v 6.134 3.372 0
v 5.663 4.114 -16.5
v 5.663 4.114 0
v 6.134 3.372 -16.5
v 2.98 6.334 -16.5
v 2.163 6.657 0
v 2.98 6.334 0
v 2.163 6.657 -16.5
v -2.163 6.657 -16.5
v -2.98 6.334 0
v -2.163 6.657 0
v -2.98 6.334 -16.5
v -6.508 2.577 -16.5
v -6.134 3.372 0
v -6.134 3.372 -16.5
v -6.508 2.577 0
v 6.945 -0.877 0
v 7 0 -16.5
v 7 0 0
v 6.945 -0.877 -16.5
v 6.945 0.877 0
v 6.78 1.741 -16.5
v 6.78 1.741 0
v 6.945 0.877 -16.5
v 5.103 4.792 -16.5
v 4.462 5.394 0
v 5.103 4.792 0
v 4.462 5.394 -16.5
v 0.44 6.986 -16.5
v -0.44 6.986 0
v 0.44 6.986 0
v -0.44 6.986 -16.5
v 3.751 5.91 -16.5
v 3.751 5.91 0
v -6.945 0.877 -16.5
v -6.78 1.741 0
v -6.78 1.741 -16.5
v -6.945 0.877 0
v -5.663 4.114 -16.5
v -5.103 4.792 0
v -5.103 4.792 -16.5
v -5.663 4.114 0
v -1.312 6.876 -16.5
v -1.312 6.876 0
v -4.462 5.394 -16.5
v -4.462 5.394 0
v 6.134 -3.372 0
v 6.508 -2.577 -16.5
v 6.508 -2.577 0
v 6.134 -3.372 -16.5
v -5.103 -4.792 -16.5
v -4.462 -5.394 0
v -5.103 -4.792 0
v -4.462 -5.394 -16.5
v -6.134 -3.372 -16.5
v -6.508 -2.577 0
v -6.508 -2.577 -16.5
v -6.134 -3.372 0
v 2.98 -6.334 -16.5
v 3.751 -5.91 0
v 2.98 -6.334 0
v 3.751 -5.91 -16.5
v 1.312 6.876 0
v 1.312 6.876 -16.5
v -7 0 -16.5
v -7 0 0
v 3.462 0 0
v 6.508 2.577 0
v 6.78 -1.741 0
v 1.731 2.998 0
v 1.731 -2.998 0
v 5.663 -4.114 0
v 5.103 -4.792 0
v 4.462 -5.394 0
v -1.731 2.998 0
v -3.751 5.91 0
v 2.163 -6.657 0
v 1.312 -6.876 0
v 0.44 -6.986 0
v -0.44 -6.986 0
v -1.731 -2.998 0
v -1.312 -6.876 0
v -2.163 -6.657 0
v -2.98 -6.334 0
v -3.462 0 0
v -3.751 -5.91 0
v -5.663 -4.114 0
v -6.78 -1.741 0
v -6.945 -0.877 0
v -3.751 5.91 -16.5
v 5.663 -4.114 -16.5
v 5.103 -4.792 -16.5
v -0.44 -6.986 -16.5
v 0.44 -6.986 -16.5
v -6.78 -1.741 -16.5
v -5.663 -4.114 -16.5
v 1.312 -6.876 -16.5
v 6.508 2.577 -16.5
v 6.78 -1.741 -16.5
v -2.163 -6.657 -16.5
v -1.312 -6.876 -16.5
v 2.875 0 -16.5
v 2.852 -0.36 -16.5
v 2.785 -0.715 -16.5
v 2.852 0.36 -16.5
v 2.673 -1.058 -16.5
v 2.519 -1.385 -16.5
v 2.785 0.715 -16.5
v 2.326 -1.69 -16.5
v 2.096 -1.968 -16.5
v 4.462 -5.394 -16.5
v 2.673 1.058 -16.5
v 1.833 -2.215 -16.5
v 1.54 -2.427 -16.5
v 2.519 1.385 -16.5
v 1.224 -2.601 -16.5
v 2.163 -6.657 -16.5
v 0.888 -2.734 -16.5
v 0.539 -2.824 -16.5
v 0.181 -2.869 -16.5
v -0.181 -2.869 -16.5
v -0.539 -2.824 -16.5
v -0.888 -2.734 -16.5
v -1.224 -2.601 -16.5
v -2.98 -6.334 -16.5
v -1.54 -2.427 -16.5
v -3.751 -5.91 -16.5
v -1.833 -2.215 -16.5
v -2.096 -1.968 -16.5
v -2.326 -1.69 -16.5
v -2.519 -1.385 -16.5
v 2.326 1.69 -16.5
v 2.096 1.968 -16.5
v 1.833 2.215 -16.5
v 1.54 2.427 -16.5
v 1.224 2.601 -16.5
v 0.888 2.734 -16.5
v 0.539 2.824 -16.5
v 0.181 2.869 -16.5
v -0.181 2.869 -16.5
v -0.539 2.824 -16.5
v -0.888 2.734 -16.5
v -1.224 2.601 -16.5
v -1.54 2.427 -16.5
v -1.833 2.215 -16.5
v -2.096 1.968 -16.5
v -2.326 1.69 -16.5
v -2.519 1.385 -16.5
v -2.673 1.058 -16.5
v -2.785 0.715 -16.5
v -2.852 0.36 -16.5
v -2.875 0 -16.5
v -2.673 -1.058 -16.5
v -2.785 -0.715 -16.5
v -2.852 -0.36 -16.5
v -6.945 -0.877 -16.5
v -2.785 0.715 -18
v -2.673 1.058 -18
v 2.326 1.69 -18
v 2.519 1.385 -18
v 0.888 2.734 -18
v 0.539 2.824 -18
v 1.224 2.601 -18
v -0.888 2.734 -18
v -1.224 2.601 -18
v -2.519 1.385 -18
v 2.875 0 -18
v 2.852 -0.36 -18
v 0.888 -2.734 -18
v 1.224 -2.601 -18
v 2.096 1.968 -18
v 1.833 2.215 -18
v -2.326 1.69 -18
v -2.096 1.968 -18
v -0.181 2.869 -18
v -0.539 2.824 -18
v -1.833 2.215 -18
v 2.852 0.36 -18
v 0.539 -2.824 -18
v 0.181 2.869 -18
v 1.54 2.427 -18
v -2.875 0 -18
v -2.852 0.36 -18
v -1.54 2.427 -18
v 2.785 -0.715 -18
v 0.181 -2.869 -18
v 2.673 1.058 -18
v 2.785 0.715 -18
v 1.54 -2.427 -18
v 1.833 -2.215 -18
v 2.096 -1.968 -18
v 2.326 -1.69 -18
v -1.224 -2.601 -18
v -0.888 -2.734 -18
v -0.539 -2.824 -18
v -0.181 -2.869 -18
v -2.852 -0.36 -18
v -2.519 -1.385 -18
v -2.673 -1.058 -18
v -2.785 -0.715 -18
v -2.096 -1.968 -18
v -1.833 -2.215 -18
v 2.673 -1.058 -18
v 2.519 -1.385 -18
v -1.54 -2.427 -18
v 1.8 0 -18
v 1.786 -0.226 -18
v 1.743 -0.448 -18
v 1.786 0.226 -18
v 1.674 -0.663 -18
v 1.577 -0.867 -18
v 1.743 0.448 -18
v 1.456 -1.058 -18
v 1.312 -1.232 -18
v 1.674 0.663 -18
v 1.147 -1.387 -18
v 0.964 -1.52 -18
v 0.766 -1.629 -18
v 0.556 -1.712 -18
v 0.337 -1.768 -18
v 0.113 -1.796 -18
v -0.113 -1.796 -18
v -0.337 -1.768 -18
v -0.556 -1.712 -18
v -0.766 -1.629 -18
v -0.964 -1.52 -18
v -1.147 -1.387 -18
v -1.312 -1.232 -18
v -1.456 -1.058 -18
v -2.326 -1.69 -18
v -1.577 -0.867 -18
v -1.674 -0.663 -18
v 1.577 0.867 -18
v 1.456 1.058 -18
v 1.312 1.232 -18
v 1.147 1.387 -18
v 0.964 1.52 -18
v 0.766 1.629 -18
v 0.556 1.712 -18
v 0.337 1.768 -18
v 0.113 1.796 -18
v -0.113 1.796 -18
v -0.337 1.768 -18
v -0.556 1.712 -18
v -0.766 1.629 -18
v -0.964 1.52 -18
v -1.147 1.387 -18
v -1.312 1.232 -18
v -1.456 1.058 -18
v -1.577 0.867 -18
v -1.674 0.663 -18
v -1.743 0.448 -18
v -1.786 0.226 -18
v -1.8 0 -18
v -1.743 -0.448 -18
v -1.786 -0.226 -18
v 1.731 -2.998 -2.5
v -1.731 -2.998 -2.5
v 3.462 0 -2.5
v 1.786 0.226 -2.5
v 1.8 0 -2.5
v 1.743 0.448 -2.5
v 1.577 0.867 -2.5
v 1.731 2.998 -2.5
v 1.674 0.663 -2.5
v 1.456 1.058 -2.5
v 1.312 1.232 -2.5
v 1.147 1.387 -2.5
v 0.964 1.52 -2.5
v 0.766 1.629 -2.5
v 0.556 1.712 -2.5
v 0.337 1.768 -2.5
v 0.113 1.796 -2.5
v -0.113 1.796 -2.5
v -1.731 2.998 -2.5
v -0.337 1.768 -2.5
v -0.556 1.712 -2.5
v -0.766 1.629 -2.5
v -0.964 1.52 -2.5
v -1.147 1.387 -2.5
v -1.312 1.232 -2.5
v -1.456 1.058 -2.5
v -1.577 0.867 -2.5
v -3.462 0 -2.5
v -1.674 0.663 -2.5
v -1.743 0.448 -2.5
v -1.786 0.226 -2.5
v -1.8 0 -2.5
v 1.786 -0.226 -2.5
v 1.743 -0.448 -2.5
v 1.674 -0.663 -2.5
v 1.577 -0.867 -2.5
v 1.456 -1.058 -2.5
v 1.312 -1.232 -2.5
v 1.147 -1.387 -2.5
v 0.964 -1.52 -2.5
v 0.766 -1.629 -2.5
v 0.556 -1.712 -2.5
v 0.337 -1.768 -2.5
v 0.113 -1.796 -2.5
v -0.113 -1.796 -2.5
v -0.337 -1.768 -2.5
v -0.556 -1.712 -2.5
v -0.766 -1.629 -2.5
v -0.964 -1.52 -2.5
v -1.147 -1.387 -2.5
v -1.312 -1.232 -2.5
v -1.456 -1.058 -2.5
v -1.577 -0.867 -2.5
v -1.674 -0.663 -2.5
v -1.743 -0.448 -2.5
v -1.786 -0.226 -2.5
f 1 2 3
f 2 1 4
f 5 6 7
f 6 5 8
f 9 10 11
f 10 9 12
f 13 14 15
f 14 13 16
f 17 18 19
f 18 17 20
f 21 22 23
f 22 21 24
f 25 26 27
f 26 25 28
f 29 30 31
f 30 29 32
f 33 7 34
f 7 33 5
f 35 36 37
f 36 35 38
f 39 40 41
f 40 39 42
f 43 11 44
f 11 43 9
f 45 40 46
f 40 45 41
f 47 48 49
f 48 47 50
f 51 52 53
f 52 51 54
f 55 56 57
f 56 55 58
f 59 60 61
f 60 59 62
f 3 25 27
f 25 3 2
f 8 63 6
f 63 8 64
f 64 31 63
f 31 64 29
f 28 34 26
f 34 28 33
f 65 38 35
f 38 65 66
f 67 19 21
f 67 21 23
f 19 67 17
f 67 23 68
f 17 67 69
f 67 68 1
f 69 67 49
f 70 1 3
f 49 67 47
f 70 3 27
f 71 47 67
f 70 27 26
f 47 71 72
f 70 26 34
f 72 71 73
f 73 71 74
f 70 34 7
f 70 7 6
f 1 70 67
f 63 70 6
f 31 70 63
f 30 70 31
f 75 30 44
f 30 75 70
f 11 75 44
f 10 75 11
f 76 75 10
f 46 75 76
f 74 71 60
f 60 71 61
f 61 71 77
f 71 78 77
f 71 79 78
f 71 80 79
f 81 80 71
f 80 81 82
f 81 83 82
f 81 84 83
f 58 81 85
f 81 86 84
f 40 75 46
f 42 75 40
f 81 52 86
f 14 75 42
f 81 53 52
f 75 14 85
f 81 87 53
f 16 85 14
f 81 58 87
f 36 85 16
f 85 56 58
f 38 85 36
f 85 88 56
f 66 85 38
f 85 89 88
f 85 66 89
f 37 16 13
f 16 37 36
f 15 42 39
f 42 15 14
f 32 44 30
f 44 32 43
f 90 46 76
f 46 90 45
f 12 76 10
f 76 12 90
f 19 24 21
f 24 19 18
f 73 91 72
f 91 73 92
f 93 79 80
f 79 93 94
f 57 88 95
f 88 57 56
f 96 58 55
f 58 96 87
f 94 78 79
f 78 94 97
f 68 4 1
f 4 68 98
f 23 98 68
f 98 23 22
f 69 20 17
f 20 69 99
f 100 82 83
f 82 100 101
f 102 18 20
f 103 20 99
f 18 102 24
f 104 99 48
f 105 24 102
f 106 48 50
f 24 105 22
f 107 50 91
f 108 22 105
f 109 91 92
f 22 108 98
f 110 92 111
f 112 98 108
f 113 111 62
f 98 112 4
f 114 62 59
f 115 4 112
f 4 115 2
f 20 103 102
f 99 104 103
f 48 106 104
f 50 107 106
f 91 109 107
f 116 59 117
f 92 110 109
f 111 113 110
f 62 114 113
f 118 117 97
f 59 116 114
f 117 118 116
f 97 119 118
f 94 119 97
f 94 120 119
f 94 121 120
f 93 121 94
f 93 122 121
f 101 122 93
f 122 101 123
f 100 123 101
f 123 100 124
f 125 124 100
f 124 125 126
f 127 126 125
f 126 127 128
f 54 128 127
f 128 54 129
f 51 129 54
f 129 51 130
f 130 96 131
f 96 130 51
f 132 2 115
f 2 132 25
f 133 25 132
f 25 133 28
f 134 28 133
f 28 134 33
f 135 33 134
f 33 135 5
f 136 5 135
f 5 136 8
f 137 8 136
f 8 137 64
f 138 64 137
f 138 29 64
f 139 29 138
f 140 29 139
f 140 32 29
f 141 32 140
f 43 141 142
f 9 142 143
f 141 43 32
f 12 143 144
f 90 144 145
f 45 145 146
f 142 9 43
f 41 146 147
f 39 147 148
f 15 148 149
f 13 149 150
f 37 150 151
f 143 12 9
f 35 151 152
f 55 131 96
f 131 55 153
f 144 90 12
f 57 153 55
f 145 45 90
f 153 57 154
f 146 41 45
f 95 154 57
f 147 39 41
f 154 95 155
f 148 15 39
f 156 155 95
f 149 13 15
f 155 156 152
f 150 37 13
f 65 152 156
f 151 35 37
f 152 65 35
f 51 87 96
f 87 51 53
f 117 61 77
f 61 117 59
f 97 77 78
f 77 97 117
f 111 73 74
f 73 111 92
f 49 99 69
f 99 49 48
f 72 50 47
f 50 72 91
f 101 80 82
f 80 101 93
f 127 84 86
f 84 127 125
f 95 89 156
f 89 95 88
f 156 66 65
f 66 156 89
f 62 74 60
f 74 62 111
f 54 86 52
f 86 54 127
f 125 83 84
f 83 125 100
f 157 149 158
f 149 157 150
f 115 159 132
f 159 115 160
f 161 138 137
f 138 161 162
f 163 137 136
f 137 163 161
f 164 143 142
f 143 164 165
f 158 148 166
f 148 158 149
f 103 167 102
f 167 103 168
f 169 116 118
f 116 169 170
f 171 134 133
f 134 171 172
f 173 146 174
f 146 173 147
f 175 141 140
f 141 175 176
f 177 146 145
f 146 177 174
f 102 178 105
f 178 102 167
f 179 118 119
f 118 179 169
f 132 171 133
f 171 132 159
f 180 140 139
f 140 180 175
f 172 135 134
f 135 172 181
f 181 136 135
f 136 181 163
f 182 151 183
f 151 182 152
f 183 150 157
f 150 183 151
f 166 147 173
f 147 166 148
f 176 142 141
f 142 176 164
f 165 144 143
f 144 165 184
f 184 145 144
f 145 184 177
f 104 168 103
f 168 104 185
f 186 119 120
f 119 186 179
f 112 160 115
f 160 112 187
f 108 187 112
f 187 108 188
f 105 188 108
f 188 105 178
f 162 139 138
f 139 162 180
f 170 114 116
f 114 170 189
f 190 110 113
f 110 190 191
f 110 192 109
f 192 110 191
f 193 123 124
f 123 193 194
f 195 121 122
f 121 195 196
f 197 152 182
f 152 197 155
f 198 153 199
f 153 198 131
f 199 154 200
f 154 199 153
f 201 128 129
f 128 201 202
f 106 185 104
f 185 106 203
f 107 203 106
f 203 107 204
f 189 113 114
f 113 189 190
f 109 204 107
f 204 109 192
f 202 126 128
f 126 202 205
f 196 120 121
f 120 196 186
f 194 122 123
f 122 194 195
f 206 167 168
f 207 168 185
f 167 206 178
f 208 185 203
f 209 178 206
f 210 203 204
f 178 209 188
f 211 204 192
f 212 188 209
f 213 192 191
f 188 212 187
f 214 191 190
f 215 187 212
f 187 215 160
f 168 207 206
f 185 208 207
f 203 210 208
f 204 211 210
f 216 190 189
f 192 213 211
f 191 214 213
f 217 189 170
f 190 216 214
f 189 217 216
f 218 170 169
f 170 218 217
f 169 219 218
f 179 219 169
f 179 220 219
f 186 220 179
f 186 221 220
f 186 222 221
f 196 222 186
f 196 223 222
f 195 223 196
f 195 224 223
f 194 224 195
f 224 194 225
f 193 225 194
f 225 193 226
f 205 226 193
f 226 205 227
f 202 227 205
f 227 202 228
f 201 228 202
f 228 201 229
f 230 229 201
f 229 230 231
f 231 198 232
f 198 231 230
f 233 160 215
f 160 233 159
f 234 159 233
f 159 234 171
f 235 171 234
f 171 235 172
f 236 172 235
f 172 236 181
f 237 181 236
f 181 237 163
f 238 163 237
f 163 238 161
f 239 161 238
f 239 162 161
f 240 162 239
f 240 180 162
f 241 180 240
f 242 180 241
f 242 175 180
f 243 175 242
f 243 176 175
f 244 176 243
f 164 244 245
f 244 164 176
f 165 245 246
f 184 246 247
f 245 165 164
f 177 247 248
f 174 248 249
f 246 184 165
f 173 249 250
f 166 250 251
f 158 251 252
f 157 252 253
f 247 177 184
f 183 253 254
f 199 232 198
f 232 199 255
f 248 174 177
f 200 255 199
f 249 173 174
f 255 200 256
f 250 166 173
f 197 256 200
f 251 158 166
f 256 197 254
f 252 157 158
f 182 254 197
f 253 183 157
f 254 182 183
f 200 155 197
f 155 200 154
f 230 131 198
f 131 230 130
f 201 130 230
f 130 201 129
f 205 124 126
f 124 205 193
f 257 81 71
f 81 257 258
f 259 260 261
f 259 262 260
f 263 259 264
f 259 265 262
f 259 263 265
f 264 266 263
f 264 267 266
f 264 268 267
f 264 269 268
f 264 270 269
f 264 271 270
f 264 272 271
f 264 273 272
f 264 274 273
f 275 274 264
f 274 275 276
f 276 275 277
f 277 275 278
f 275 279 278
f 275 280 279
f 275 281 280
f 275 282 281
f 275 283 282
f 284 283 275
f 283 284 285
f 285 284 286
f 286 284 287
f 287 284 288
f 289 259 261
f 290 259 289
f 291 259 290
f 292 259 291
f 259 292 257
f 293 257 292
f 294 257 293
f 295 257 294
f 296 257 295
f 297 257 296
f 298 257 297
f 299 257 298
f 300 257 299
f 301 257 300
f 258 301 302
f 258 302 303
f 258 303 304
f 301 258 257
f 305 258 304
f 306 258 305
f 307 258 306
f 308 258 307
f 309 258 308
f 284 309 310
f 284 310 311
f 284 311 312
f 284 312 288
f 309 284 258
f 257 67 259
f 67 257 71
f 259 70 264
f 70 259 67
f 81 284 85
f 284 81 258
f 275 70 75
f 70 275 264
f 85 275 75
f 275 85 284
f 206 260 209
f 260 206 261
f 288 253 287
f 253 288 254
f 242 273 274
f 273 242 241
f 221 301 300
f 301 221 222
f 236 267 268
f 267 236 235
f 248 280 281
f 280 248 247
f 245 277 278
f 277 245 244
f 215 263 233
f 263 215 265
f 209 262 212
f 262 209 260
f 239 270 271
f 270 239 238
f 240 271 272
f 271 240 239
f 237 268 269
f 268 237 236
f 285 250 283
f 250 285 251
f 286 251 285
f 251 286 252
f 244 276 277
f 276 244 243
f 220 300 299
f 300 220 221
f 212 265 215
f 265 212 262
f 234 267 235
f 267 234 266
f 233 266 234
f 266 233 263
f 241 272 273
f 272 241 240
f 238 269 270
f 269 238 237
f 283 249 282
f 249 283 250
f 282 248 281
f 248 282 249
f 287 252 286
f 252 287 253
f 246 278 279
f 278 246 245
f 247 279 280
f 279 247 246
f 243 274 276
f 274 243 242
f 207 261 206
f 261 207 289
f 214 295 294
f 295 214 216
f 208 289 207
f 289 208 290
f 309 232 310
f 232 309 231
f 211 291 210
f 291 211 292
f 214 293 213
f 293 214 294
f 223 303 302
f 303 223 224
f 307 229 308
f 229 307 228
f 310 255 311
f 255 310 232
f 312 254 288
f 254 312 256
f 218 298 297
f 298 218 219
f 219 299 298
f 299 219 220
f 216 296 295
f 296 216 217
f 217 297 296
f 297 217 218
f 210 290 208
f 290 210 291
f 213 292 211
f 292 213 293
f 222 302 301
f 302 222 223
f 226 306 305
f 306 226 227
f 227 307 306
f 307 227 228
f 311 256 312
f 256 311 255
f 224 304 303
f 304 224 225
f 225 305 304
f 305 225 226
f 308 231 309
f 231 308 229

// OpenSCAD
$fn = 50;


difference() {
	union() {
		translate(v = [0, 0, -16.5000000000]) {
			cylinder(h = 16.5000000000, r = 7.0000000000);
		}
		#translate(v = [0, 0, -18.0000000000]) {
			cylinder(h = 18, r = 2.8750000000);
		}
	}
	union() {
		translate(v = [0, 0, 0]) {
			rotate(a = [0, 0, 0]) {
				difference() {
					union() {
						translate(v = [0, 0, -2.5000000000]) {
							linear_extrude(height = 2.5000000000) {
								polygon(points = [[3.4620000000, 0.0000000000], [1.7310000000, 2.9981799479], [-1.7310000000, 2.9981799479], [-3.4620000000, 0.0000000000], [-1.7310000000, -2.9981799479], [1.7310000000, -2.9981799479]]);
							}
						}
					}
					union();
				}
			}
		}
		#translate(v = [0, 0, -100.0000000000]) {
			cylinder(h = 200, r = 1.8000000000);
		}
	}
}
